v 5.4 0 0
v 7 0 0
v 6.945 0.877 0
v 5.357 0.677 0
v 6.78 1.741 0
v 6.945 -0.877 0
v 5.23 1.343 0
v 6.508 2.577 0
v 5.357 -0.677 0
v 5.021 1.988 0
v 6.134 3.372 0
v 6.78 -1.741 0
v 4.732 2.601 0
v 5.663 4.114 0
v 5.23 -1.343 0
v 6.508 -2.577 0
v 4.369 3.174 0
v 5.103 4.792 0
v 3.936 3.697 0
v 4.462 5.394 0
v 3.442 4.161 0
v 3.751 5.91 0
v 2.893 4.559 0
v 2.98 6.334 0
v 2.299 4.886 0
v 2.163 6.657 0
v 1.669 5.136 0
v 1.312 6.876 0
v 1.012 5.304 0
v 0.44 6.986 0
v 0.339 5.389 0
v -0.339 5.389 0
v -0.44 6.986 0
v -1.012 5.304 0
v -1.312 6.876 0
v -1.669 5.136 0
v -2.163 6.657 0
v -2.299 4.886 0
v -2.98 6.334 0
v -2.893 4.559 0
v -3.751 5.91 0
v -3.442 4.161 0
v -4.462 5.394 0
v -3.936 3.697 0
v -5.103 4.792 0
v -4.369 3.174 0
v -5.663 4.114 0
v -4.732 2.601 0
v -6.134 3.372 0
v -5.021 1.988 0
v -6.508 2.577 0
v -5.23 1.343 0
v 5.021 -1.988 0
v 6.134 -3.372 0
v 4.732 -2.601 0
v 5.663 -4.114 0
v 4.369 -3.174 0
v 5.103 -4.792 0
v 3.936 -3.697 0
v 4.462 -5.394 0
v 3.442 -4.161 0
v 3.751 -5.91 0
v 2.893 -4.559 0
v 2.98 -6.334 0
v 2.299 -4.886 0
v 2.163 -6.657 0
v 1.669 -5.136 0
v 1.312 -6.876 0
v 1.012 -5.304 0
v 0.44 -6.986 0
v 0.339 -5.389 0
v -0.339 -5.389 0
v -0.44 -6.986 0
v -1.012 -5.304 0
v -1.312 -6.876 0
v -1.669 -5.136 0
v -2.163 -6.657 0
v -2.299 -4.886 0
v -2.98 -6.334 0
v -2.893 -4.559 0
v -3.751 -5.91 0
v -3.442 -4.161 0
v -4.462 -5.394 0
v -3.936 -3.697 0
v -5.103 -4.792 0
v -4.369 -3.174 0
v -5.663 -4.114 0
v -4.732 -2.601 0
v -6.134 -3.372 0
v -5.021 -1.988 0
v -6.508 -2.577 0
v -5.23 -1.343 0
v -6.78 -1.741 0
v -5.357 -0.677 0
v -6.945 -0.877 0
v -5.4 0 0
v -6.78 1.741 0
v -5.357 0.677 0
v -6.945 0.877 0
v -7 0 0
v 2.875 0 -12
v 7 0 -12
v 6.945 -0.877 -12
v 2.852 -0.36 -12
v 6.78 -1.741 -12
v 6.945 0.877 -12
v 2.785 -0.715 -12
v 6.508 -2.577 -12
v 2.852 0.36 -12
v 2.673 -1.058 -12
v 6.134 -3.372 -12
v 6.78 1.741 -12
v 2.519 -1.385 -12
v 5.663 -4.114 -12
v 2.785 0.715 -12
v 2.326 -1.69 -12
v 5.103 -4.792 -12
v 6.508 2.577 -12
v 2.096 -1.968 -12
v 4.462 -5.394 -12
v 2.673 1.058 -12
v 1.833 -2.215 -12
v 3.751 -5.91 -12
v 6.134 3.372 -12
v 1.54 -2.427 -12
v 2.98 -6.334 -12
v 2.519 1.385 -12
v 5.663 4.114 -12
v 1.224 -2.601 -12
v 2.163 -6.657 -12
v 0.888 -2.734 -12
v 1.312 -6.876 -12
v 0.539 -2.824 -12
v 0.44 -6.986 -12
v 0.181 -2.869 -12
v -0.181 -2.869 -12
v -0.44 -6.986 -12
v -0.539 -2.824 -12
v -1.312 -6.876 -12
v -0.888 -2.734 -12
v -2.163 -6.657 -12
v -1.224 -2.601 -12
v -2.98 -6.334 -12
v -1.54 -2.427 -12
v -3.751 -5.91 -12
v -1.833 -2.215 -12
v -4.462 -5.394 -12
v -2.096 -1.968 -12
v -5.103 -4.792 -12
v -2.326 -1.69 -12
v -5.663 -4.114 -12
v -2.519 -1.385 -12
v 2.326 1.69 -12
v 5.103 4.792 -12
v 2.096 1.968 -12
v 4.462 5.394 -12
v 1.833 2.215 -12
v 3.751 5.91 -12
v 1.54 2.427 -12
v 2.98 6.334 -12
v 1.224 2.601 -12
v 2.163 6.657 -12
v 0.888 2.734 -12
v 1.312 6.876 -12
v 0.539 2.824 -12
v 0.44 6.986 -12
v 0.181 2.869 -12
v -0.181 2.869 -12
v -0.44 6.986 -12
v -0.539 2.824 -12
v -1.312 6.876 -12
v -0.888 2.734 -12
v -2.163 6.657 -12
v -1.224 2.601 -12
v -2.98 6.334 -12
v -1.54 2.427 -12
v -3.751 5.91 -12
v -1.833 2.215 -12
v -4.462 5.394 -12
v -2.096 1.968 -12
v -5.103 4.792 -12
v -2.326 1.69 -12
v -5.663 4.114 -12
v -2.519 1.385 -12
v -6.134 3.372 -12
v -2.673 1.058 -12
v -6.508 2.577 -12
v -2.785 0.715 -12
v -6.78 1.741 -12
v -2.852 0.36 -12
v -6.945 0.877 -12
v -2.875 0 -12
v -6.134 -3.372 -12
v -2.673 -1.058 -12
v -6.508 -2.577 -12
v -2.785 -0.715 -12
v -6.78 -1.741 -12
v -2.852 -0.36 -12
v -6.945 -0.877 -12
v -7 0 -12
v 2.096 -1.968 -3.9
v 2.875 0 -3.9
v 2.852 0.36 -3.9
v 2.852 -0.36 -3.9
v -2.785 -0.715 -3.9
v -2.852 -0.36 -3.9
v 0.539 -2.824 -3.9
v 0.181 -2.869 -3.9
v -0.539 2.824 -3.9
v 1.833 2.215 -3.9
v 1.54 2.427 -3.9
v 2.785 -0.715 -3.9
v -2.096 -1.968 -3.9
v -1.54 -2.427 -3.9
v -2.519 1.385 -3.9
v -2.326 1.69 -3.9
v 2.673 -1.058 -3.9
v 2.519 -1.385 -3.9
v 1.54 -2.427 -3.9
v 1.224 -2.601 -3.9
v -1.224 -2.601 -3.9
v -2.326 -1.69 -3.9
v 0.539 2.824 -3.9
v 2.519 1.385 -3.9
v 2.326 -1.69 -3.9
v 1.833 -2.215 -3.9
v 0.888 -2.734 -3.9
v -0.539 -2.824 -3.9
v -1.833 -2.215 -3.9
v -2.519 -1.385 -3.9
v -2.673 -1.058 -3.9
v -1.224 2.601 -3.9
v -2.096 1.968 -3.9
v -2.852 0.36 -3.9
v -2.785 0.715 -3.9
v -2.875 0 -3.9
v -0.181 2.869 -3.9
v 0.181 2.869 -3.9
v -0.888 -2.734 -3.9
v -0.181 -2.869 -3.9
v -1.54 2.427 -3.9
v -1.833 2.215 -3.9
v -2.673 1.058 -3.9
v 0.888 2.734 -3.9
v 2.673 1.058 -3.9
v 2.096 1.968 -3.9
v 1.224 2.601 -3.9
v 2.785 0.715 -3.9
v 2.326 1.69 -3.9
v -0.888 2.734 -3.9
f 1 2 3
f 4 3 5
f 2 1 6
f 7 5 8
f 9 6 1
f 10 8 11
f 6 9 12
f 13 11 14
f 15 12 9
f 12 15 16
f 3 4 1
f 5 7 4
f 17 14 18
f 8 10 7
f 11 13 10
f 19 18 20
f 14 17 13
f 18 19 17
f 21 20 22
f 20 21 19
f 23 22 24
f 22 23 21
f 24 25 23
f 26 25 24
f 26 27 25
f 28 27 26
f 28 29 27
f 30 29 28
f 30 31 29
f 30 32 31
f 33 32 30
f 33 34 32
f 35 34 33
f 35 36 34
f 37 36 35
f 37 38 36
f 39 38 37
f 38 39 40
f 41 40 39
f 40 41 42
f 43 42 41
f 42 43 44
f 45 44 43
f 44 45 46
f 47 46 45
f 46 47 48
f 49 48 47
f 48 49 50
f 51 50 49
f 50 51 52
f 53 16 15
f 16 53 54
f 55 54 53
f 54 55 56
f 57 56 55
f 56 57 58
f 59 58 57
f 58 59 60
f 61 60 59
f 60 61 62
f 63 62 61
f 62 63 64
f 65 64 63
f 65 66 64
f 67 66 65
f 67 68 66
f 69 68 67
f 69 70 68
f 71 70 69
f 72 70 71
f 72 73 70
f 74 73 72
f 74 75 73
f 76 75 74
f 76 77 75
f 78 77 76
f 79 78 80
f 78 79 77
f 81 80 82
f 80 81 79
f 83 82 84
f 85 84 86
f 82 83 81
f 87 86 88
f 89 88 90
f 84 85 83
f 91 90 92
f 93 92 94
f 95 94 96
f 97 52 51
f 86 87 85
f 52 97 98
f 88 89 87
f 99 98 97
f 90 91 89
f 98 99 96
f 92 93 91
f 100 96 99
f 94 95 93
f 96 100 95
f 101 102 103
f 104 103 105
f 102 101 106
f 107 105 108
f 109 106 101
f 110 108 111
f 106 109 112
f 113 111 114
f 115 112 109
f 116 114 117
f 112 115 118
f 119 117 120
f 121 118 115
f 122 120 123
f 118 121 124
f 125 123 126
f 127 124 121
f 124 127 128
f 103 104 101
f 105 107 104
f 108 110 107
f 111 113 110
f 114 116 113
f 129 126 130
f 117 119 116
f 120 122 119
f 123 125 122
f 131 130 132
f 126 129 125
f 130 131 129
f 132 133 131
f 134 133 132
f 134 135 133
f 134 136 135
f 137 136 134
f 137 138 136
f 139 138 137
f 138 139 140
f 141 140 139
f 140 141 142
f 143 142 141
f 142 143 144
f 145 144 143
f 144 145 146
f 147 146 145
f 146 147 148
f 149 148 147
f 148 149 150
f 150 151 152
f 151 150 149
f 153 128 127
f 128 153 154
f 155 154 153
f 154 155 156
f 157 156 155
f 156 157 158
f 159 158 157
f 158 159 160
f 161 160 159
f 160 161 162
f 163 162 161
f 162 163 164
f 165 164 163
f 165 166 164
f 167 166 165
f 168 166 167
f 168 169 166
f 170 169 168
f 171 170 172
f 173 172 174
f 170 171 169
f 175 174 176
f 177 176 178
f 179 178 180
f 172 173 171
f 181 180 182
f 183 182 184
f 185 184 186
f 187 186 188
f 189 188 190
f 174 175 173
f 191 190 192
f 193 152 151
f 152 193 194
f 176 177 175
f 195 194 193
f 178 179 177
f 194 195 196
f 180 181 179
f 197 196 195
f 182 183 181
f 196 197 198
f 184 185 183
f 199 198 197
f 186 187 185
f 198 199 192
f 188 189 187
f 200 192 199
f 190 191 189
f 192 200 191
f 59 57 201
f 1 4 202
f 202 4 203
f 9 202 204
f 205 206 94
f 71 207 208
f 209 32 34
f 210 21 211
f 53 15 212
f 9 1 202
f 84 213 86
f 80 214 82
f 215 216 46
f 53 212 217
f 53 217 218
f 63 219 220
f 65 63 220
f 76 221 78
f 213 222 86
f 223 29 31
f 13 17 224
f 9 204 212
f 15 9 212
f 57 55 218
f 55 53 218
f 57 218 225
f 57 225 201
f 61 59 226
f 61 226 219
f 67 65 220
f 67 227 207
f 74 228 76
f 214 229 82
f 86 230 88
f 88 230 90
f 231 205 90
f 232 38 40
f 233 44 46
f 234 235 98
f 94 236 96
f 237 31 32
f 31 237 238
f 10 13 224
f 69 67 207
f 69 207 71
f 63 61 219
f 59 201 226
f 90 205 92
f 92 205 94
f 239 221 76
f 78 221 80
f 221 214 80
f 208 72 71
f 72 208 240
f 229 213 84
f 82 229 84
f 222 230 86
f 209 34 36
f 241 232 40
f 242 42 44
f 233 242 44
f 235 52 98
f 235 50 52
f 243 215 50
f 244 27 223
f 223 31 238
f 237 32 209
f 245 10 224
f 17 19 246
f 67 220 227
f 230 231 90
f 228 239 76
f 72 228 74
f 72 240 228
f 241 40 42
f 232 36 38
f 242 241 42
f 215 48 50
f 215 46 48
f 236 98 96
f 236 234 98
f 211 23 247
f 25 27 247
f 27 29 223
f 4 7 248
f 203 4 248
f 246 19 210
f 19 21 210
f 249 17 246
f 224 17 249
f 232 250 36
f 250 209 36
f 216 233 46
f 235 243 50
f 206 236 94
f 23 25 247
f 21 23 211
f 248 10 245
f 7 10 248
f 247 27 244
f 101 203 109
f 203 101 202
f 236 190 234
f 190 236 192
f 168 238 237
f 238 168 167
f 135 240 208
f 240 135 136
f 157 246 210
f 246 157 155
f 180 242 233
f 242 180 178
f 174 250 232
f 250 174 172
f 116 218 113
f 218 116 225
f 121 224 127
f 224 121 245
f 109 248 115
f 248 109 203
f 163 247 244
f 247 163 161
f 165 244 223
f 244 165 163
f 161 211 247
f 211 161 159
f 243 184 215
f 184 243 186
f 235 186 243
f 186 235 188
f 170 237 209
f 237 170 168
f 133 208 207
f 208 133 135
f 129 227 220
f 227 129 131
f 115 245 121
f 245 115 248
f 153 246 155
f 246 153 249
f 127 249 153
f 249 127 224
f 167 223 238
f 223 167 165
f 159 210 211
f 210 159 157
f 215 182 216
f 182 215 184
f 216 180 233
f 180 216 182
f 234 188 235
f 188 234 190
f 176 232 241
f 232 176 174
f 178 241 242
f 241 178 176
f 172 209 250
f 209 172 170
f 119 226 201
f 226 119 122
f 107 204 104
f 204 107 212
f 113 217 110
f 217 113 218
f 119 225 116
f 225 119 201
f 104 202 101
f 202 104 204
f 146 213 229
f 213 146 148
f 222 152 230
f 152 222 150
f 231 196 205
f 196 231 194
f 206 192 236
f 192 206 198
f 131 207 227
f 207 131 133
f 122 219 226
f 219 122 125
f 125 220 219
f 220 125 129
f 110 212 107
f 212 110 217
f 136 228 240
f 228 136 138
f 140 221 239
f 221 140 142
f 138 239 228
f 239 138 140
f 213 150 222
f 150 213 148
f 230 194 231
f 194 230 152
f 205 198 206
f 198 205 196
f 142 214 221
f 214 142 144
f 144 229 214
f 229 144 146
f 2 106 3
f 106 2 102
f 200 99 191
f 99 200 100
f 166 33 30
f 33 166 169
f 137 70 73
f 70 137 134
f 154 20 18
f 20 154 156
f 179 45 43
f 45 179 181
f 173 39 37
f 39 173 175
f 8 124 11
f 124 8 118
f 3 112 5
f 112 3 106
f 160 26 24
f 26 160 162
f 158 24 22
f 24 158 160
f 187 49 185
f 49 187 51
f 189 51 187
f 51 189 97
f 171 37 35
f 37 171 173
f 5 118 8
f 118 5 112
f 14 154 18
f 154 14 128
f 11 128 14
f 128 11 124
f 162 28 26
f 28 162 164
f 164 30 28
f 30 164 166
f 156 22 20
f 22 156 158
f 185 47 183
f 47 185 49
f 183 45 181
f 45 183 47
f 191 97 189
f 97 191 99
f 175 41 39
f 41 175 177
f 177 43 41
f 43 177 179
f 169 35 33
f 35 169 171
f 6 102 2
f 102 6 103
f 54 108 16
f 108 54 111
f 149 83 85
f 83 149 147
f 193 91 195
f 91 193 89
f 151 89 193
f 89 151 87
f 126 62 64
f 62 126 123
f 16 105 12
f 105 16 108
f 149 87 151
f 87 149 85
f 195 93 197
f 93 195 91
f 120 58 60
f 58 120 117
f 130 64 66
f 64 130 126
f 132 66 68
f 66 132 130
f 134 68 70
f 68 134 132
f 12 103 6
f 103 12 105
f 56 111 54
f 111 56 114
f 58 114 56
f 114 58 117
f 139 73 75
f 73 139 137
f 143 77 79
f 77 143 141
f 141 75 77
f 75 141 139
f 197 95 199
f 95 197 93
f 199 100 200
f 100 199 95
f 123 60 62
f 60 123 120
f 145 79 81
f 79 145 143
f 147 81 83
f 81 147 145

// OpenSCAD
$fn = 50;


difference() {
	union() {
		translate(v = [0, 0, -12.0000000000]) {
			cylinder(h = 12, r = 7.0000000000);
		}
		cylinder(h = 0, r = 10.0000000000);
	}
	union() {
		translate(v = [0, 0, 0]) {
			rotate(a = [0, 0, 0]) {
				difference() {
					union() {
						#translate(v = [0, 0, -12.0000000000]) {
							cylinder(h = 12, r = 2.6000000000);
						}
						#translate(v = [0, 0, -3.9000000000]) {
							cylinder(h = 3.9000000000, r1 = 2.8750000000, r2 = 5.4000000000);
						}
						#translate(v = [0, 0, -12.0000000000]) {
							cylinder(h = 12, r = 2.8750000000);
						}
						#translate(v = [0, 0, -12.0000000000]) {
							cylinder(h = 12, r = 2.6000000000);
						}
					}
					union();
				}
			}
		}
	}
}
